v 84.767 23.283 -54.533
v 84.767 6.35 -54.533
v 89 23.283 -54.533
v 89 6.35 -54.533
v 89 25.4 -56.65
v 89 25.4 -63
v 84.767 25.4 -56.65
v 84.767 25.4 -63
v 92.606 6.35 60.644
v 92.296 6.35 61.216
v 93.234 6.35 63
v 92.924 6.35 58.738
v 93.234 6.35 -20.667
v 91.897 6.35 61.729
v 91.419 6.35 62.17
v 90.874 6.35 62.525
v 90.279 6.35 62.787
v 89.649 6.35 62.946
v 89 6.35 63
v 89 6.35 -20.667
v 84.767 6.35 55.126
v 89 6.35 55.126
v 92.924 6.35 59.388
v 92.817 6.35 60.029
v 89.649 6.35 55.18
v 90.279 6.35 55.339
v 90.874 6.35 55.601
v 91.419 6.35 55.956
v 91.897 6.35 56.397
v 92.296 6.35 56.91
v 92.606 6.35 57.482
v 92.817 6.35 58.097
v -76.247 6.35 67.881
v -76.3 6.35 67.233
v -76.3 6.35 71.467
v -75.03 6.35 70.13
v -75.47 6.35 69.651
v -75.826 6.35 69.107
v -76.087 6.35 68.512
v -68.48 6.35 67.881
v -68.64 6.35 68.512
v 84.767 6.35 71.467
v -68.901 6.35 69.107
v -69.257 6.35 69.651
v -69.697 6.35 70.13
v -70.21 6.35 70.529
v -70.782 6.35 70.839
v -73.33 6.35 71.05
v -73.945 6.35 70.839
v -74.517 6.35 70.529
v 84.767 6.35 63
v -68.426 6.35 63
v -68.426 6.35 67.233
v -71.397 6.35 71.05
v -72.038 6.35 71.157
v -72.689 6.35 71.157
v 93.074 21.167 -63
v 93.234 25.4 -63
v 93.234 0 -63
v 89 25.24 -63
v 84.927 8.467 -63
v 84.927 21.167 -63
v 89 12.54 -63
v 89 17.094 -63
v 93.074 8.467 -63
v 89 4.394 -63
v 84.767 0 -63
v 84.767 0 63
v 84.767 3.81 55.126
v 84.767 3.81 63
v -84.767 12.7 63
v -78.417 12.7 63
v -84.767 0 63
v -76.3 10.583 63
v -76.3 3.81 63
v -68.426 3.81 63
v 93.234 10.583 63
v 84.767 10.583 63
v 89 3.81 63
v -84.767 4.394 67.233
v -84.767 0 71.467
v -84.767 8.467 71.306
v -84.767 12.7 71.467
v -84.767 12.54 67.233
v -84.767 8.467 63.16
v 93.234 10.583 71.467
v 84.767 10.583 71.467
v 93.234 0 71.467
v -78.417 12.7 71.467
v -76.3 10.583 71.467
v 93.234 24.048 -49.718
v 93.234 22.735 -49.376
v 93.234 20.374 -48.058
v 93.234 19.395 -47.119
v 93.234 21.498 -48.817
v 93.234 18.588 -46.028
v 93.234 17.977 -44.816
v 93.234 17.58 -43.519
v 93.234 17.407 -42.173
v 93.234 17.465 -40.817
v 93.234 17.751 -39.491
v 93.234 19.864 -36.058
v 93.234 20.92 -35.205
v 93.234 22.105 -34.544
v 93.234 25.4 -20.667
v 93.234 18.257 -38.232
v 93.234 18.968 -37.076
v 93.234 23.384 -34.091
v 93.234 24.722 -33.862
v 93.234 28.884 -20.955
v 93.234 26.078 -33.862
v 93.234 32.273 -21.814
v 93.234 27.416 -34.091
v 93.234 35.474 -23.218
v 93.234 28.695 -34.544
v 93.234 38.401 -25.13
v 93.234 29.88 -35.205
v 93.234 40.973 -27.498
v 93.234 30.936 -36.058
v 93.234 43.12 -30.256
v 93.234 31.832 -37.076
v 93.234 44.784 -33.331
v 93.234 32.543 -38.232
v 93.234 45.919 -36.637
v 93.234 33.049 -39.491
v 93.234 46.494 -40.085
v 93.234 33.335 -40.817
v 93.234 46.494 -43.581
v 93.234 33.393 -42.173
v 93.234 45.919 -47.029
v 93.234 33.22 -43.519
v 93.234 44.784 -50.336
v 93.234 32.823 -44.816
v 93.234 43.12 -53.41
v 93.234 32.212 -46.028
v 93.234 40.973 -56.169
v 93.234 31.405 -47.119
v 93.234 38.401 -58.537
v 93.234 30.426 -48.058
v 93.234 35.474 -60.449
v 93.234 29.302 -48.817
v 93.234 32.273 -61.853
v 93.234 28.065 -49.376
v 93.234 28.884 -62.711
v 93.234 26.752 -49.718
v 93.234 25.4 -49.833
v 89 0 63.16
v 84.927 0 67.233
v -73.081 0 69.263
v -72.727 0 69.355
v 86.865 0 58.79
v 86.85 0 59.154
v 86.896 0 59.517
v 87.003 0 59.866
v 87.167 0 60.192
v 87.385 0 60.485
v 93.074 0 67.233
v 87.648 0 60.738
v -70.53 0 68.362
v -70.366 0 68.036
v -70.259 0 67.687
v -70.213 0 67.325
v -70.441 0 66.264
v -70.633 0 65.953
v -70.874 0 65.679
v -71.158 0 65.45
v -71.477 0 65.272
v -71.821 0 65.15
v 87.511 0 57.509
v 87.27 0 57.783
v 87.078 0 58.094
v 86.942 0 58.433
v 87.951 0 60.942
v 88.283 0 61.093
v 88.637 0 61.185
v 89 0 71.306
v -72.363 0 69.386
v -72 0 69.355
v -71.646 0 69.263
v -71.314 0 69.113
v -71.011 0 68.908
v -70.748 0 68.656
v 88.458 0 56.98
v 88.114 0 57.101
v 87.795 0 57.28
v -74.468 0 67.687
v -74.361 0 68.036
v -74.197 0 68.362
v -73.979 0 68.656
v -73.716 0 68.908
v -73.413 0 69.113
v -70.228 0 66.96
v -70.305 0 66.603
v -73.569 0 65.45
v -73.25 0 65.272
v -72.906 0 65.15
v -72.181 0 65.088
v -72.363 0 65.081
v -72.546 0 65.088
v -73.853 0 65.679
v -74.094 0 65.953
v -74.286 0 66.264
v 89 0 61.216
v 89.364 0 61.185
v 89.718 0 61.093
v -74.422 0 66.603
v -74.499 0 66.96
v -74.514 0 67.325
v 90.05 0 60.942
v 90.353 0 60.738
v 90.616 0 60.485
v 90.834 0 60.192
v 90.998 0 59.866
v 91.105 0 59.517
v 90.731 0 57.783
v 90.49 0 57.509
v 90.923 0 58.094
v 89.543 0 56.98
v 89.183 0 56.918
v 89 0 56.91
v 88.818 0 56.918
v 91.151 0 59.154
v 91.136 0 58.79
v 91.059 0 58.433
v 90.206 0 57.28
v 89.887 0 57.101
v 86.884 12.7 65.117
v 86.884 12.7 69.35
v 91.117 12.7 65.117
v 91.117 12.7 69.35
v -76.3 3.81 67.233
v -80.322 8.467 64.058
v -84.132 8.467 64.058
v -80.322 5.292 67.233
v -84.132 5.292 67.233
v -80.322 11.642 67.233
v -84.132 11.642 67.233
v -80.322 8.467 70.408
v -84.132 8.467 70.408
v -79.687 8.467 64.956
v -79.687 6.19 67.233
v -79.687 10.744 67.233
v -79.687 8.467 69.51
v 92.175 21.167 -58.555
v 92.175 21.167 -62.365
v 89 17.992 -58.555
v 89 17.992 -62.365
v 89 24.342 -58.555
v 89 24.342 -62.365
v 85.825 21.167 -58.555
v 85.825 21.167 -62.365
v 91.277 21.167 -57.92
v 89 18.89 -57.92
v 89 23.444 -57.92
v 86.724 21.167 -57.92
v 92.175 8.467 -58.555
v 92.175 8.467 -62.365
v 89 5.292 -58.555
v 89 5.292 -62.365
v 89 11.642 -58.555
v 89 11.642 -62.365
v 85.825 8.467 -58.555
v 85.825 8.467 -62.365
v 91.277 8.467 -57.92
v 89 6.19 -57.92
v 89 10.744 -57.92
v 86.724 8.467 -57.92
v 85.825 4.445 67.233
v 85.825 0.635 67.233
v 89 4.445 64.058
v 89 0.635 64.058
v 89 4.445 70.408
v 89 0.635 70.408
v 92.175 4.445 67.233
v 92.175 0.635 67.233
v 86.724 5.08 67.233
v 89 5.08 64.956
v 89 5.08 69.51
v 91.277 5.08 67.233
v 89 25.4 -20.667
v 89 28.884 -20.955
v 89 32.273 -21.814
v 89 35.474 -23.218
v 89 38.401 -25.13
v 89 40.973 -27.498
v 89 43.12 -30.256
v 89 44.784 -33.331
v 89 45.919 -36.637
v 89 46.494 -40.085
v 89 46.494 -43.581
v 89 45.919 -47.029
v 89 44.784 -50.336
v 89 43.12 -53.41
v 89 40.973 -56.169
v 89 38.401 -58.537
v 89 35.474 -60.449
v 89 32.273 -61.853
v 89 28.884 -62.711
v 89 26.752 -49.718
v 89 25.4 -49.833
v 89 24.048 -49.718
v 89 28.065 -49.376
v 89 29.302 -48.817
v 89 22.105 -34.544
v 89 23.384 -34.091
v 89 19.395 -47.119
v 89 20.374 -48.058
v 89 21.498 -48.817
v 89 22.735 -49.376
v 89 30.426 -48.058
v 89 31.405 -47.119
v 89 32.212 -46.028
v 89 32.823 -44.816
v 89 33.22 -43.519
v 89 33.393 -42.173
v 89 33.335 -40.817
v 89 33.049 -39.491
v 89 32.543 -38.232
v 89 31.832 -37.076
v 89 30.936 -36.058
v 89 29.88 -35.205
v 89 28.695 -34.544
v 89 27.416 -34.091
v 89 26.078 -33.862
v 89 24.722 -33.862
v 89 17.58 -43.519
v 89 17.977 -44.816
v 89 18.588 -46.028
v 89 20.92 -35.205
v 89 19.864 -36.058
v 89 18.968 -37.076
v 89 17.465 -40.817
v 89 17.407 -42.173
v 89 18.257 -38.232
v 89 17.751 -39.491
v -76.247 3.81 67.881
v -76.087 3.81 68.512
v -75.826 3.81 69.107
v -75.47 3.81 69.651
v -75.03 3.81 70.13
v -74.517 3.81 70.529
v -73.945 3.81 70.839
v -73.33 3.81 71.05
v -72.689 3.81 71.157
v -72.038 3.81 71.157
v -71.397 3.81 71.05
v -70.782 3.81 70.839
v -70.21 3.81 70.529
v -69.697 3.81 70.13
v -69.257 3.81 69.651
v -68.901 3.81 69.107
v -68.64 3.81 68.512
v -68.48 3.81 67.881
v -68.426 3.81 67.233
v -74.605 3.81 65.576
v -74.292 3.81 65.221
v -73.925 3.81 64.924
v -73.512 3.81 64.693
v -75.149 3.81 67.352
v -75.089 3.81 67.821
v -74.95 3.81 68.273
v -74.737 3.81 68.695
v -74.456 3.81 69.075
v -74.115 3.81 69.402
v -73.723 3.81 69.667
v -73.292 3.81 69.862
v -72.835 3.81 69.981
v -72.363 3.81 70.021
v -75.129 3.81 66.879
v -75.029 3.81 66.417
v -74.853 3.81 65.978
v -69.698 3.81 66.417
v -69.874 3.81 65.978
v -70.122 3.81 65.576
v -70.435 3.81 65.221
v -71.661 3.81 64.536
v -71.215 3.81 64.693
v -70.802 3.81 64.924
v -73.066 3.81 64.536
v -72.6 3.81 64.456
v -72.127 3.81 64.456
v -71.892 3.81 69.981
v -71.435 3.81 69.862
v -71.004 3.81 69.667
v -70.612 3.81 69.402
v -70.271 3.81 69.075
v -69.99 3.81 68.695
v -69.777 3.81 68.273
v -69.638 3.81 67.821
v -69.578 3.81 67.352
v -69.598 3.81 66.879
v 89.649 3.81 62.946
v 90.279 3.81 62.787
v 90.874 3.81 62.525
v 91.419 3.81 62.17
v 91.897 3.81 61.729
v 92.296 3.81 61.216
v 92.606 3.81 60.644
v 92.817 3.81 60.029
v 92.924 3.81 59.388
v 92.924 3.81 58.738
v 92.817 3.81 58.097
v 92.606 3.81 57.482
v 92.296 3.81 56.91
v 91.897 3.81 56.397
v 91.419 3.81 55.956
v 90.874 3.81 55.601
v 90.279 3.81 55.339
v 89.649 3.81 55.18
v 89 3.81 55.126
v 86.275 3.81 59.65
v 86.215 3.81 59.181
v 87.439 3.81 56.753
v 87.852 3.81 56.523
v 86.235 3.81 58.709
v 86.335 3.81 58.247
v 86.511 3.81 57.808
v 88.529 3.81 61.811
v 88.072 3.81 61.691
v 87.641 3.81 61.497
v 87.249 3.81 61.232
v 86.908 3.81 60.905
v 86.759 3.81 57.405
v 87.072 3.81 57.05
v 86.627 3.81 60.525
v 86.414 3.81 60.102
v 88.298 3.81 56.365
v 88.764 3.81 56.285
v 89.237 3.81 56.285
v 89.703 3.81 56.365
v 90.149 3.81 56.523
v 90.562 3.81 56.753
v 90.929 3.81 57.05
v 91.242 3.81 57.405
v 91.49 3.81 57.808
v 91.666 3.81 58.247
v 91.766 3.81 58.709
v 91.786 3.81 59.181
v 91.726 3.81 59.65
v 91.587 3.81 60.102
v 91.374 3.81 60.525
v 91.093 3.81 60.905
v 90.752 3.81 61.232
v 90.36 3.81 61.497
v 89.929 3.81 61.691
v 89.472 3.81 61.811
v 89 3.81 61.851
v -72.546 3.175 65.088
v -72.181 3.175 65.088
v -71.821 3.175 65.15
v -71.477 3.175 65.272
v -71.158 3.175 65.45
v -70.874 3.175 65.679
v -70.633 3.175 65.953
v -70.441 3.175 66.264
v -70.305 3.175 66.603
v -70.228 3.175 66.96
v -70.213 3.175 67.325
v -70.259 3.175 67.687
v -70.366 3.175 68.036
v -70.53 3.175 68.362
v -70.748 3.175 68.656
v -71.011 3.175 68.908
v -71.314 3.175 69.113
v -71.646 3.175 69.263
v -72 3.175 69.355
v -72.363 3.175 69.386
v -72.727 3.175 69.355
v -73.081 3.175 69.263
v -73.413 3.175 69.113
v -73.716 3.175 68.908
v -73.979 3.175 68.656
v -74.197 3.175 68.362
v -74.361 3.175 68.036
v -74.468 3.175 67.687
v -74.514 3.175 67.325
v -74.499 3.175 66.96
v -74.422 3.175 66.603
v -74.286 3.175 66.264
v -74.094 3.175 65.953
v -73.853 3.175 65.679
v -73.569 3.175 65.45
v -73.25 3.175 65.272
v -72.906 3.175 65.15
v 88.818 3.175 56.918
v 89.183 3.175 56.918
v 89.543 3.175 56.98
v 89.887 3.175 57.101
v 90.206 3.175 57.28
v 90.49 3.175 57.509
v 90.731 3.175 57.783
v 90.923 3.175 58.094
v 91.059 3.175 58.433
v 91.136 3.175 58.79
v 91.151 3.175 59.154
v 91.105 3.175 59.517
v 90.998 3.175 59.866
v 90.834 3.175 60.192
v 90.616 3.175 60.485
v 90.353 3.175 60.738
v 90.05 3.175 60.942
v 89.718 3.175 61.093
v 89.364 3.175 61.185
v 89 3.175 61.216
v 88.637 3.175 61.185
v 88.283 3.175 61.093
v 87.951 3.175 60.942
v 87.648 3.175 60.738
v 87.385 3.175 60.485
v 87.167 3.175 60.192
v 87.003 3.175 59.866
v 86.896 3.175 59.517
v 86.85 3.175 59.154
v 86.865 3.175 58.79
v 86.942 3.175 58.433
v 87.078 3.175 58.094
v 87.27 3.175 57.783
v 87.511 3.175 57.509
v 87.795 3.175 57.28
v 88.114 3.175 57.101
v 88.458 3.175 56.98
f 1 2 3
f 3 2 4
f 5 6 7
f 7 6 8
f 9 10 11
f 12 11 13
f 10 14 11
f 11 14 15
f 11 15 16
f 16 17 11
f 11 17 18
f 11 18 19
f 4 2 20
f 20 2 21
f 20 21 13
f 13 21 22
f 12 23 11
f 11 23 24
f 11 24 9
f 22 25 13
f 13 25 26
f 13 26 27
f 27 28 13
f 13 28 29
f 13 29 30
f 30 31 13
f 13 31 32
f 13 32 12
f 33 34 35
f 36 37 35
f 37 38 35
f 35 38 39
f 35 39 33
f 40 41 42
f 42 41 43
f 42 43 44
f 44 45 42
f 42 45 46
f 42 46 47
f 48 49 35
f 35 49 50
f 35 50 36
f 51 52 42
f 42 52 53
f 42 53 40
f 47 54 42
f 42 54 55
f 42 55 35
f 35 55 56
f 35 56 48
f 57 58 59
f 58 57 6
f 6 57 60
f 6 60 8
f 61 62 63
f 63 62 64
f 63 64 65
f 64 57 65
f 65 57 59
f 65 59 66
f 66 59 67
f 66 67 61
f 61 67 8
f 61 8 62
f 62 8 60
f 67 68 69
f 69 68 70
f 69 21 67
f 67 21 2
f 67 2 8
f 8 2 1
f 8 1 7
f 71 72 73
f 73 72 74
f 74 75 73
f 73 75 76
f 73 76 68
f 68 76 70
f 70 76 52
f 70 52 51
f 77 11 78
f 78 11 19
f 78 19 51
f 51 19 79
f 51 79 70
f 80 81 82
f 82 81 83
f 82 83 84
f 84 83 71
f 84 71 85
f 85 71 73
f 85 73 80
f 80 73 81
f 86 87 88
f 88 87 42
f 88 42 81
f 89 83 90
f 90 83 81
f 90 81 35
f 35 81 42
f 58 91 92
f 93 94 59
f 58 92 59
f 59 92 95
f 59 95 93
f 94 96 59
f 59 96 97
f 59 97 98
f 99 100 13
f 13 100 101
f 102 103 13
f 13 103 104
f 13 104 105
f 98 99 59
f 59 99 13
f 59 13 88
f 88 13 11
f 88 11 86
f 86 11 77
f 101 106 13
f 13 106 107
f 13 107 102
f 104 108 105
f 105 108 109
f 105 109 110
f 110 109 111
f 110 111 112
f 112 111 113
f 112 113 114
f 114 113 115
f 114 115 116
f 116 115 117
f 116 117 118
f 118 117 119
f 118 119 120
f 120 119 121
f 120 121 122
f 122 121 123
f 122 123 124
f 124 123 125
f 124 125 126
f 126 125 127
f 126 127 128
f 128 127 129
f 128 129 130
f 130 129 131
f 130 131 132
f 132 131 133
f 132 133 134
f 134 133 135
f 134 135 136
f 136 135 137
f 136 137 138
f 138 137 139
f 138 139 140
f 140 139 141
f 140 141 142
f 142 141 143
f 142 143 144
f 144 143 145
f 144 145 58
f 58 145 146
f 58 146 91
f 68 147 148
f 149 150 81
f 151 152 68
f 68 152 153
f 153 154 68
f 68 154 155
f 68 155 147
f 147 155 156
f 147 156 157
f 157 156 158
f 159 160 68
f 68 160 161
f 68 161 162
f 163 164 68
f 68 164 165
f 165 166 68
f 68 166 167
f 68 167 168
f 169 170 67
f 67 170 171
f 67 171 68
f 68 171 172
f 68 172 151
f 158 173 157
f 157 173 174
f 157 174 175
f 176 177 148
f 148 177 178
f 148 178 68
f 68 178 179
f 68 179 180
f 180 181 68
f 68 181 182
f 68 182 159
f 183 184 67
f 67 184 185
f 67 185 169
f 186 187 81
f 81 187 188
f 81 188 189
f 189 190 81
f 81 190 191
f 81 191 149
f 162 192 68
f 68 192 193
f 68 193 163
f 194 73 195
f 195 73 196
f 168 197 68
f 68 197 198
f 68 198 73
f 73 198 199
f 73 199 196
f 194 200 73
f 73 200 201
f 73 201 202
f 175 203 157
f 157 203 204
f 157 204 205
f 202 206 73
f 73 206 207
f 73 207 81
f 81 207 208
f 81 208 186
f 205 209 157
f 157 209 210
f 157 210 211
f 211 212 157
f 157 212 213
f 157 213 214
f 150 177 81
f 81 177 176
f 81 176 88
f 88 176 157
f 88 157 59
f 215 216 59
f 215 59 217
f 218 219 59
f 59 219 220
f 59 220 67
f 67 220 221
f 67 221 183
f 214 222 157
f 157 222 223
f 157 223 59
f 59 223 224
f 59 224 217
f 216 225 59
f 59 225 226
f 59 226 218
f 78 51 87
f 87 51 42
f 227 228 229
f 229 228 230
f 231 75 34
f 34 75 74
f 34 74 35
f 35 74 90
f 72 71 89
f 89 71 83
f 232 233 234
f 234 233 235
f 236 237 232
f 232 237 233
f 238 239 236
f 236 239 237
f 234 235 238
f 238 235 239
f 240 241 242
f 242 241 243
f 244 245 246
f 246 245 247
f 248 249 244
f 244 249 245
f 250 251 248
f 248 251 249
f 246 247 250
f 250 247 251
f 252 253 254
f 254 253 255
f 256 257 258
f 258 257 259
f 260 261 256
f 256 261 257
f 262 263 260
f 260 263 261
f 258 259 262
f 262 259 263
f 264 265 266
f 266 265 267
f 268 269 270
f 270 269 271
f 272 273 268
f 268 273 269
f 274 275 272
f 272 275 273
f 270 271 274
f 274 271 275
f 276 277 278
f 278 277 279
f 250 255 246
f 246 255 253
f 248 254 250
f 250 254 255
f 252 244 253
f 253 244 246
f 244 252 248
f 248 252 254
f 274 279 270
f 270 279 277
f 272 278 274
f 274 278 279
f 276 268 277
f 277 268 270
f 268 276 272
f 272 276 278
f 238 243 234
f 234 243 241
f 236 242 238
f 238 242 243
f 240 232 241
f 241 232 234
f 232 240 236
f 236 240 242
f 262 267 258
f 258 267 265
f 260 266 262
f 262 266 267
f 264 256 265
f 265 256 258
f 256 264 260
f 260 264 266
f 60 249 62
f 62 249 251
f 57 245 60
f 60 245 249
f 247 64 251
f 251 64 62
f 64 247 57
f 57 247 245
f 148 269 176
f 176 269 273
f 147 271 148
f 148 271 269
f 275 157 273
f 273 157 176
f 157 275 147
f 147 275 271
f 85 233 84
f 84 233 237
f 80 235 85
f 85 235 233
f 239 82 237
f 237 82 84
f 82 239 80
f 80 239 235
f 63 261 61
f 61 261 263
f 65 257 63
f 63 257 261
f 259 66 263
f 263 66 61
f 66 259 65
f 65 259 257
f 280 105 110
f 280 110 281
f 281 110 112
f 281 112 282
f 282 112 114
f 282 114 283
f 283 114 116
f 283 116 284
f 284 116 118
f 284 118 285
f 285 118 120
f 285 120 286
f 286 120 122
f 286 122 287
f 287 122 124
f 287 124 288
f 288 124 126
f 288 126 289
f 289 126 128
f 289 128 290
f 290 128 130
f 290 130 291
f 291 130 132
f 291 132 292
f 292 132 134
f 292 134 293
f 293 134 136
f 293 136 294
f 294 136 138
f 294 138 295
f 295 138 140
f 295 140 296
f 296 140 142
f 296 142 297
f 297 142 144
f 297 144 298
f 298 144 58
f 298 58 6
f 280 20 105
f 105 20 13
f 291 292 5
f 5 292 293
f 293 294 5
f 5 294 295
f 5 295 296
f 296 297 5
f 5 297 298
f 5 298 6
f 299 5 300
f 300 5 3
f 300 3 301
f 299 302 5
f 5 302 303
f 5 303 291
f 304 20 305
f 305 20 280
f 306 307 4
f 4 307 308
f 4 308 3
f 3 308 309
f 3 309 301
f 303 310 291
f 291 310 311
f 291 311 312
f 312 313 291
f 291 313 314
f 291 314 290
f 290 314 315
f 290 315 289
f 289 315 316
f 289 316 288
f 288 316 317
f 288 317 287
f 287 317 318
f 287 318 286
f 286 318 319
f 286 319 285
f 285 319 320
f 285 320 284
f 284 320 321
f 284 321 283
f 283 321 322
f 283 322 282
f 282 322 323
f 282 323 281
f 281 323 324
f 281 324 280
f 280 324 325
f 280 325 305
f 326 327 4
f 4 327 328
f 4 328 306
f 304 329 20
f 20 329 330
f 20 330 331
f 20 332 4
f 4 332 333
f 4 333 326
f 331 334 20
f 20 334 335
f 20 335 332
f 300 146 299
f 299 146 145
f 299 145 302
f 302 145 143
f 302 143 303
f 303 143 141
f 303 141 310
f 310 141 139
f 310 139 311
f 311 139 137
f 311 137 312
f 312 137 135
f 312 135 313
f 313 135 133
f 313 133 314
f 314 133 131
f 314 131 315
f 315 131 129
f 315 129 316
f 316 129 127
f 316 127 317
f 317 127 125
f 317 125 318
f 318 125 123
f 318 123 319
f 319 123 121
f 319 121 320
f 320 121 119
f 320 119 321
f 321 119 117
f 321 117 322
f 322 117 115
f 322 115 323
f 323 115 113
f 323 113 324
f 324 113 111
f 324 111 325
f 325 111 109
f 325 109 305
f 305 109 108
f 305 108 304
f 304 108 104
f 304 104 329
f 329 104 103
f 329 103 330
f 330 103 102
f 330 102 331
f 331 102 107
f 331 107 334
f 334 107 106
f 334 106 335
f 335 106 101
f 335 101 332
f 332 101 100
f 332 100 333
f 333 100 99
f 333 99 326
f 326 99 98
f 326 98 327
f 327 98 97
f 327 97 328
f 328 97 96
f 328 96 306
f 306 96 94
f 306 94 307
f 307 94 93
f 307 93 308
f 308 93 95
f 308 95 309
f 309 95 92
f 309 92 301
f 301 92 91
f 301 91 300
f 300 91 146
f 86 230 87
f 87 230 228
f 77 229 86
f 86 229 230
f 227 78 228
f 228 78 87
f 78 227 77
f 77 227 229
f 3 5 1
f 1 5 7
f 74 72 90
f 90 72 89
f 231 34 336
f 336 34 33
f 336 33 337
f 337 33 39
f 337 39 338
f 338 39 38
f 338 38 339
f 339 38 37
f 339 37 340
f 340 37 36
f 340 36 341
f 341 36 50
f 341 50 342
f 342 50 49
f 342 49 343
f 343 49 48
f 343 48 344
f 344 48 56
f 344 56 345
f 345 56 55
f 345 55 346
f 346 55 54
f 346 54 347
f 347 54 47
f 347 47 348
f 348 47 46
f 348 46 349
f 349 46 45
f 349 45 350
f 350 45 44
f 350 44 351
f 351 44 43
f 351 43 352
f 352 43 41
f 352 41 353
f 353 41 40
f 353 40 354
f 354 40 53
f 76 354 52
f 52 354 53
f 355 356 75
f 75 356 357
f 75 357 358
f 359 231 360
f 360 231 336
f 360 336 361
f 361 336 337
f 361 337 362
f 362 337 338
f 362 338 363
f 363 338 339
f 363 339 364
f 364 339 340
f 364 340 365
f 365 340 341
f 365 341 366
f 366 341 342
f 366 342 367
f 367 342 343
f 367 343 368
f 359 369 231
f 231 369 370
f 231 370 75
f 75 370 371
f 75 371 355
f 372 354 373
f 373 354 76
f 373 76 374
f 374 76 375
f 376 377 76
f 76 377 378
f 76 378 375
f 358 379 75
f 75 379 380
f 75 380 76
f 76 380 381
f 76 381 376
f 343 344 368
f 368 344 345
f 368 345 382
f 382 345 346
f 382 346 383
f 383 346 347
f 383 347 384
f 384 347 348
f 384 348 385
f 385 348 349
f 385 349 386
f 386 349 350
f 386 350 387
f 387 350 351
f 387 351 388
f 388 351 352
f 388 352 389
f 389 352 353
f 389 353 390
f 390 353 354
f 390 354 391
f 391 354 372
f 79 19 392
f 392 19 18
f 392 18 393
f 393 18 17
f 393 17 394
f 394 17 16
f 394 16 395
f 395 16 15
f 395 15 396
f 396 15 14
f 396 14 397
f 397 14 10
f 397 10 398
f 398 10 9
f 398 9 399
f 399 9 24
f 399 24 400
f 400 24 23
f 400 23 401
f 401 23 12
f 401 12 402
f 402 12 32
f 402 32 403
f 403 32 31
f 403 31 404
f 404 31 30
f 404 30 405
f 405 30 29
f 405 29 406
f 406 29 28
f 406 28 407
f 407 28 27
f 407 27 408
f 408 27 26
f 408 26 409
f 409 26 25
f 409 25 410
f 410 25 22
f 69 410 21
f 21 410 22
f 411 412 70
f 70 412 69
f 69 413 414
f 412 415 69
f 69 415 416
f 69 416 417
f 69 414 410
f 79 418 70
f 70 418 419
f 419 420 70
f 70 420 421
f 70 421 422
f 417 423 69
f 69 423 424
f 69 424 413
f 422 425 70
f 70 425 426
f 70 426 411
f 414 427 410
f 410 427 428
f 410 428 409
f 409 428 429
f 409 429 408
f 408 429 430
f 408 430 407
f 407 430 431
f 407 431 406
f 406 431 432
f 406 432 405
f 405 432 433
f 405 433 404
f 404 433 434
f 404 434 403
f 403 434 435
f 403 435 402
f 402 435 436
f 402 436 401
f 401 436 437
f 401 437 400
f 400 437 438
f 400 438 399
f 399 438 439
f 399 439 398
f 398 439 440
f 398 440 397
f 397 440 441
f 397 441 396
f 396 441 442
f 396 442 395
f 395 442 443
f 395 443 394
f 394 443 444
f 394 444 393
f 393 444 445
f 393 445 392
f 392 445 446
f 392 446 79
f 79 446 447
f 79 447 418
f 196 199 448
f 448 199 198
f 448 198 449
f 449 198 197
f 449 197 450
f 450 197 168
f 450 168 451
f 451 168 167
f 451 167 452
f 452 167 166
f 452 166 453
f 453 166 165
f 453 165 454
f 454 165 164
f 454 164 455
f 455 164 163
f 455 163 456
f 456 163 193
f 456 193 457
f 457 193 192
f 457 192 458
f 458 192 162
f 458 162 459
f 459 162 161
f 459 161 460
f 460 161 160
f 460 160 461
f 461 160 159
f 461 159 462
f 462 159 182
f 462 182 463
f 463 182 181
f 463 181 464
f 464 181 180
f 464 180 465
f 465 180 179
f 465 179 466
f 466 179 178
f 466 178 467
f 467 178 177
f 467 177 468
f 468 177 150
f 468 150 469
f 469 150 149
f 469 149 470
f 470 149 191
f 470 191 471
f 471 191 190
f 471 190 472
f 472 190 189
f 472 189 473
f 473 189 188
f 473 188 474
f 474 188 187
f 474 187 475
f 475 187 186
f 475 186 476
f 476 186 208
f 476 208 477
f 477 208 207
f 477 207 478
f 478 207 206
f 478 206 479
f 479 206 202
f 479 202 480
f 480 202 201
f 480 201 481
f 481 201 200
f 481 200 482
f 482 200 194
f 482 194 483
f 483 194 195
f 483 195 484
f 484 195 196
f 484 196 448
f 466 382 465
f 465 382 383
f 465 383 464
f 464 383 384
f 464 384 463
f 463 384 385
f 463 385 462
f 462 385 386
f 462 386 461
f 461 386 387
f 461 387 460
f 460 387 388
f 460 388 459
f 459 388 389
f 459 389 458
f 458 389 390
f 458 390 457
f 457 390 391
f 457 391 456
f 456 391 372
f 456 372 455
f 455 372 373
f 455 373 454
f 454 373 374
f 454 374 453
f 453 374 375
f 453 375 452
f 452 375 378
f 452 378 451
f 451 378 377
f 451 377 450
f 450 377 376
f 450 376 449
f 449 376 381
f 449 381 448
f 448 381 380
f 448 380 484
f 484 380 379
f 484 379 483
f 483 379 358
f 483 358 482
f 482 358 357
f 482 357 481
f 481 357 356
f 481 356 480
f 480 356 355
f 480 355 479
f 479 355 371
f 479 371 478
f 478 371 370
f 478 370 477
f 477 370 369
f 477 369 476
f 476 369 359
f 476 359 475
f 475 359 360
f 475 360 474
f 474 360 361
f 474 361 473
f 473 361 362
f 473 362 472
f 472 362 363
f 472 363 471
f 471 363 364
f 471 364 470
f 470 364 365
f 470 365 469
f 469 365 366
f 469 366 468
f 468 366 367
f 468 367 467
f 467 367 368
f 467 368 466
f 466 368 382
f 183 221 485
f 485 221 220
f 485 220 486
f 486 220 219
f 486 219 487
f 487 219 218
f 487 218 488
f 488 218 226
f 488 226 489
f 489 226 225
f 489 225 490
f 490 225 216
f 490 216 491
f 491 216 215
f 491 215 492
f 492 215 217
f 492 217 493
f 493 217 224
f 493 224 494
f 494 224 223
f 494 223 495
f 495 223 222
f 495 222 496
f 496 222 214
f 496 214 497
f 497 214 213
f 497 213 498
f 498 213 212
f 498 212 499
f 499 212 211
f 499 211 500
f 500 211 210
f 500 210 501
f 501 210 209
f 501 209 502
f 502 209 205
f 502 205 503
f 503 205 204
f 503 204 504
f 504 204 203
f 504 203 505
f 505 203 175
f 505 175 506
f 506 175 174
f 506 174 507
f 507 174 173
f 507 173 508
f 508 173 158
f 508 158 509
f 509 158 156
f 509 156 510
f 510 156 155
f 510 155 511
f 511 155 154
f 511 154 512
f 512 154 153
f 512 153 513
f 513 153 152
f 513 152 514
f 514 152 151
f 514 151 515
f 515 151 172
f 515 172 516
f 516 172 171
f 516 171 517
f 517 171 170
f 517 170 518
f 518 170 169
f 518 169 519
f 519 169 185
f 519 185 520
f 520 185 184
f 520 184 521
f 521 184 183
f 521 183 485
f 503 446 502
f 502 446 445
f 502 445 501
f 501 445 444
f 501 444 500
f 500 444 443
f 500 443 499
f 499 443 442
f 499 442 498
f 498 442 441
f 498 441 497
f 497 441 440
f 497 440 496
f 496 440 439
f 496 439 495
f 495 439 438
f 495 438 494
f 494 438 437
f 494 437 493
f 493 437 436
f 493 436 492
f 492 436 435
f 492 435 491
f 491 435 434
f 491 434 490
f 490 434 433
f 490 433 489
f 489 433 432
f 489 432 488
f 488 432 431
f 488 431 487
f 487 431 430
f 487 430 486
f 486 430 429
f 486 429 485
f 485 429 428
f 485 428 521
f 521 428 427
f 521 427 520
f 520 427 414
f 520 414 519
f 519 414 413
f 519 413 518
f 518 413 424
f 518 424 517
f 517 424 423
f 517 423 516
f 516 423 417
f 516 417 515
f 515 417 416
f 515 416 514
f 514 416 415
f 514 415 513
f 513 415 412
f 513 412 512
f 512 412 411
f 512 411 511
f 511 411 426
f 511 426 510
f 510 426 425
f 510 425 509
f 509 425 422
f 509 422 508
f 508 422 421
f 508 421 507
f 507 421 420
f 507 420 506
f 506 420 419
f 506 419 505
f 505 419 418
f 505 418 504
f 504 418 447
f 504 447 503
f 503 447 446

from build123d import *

# Parameters (mm, degrees)
BOSS_EXTRUDE1_DEPTH                    = 6.35
SKETCH3_W                              = 8.466666667
SKETCH3_H                              = 8.466666667
SKETCH3_W_2                            = 8.466666666
BOSS_EXTRUDE2_DEPTH                    = 6.349999915
SKETCH8_W                              = 8.466666666
SKETCH8_H                              = 8.466666666
BOSS_EXTRUDE4_DEPTH                    = 19.049999915
CUT_EXTRUDE1_DEPTH                     = 5.08
CUT_EXTRUDE2_DEPTH                     = 5.08
CUT_EXTRUDE3_DEPTH                     = 5.08
CHAMFER1_SIZE                          = 0.635
SKETCH7_R                              = 8
BOSS_EXTRUDE3_DEPTH                    = 4.233333333
CHAMFER2_SIZE                          = 2.116666709
CUT_EXTRUDE5_DEPTH                     = 2.54
F_18_0_1695_DIAMETER_HOLE1_D           = 4.3053
F_18_0_1695_DIAMETER_HOLE1_DEPTH       = 4.572
F_18_0_1695_DIAMETER_HOLE1_CSINK_D     = 5.5753
F_18_0_1695_DIAMETER_HOLE1_CSINK_ANGLE = 90
F_18_0_1695_DIAMETER_HOLE1_TIP         = 1.293442612


with BuildPart() as part:
    # Sketch2 → Boss-Extrude1 (new body)
    with BuildSketch(Plane(origin=(0, 0, 0), x_dir=(1, 0, 0), z_dir=(0, 1, 0))):
        Polygon((93.233827842, 63.000000026), (93.233827842, -71.466666693), (-84.767161176, -71.466666693), (-84.767161176, -63.000000026), (84.767161176, -63.000000026), (84.767161176, 63.000000026), align=None)
    extrude(amount=BOSS_EXTRUDE1_DEPTH)

    # Sketch3 → Boss-Extrude2 (add)
    with BuildSketch(Plane(origin=(0, 6.35, 0), x_dir=(1, 0, 0), z_dir=(0, 1, 0))):
        with Locations((-80.533827843, -67.23333336)):
            Rectangle(SKETCH3_W, SKETCH3_H)
        with Locations((89.000494509, -67.23333336)):
            Rectangle(SKETCH3_W_2, SKETCH3_H)
    extrude(amount=BOSS_EXTRUDE2_DEPTH)

    # Sketch8 → Boss-Extrude4 (add)
    with BuildSketch(Plane(origin=(0, 6.35, 0), x_dir=(1, 0, 0), z_dir=(0, 1, 0))):
        with Locations((89.000494509, 58.766666693)):
            Rectangle(SKETCH8_W, SKETCH8_H)
    extrude(amount=BOSS_EXTRUDE4_DEPTH)

    # Sketch4 → Cut-Extrude1 (cut)
    with BuildSketch(Plane.ZY.offset(84.767161176)):
        Polygon((64.05833336, 8.466666667), (67.23333336, 11.641666667), (70.40833336, 8.466666667), (67.23333336, 5.291666667), align=None)
    extrude(amount=-CUT_EXTRUDE1_DEPTH, mode=Mode.SUBTRACT)

    # Sketch5 → Cut-Extrude2 (cut)
    with BuildSketch(Plane(origin=(0, 0, -63.000000026), x_dir=(-1, 0, 0), z_dir=(0, 0, -1))):
        Polygon((-92.175494509, 8.466666667), (-89.000494509, 11.641666667), (-85.825494509, 8.466666667), (-89.000494509, 5.291666667), align=None)
        Polygon((-92.175494509, 21.166666582), (-89.000494509, 24.341666582), (-85.825494509, 21.166666582), (-89.000494509, 17.991666582), align=None)
    extrude(amount=-CUT_EXTRUDE2_DEPTH, mode=Mode.SUBTRACT)

    # Sketch6 → Cut-Extrude3 (cut)
    with BuildSketch(Plane.XZ):
        Polygon((85.825494509, 67.23333336), (89.000494509, 70.40833336), (92.175494509, 67.23333336), (89.000494509, 64.05833336), align=None)
    extrude(amount=-CUT_EXTRUDE3_DEPTH, mode=Mode.SUBTRACT)

    # Chamfer1
    chamfer1_edges = [part.edges().sort_by_distance(p)[0] for p in [
        (87.412994509, 5.08, 65.64583336),
        (87.412994509, 5.08, 68.82083336),
        (90.587994509, 5.08, 68.82083336),
        (90.587994509, 5.08, 65.64583336),
        (87.412994509, 0, 65.64583336),
        (90.587994509, 0, 65.64583336),
        (90.587994509, 0, 68.82083336),
        (87.412994509, 0, 68.82083336),
        (-79.687161176, 6.879166667, 65.64583336),
        (-79.687161176, 10.054166667, 65.64583336),
        (-79.687161176, 10.054166667, 68.82083336),
        (-79.687161176, 6.879166667, 68.82083336),
        (-84.767161176, 6.879166667, 65.64583336),
        (-84.767161176, 6.879166667, 68.82083336),
        (-84.767161176, 10.054166667, 68.82083336),
        (-84.767161176, 10.054166667, 65.64583336),
        (90.587994509, 6.879166667, -57.920000026),
        (90.587994509, 10.054166667, -57.920000026),
        (87.412994509, 10.054166667, -57.920000026),
        (87.412994509, 6.879166667, -57.920000026),
        (90.587994509, 6.879166667, -63.000000026),
        (87.412994509, 6.879166667, -63.000000026),
        (87.412994509, 10.054166667, -63.000000026),
        (90.587994509, 10.054166667, -63.000000026),
        (90.587994509, 19.579166582, -57.920000026),
        (90.587994509, 22.754166582, -57.920000026),
        (87.412994509, 22.754166582, -57.920000026),
        (87.412994509, 19.579166582, -57.920000026),
        (90.587994509, 19.579166582, -63.000000026),
        (87.412994509, 19.579166582, -63.000000026),
        (87.412994509, 22.754166582, -63.000000026),
        (90.587994509, 22.754166582, -63.000000026),
    ]]
    chamfer(chamfer1_edges, length=CHAMFER1_SIZE)

    # Sketch7 → Boss-Extrude3 (add)
    with BuildSketch(Plane(origin=(93.233827842, 0, 0), x_dir=(0, 0, -1), z_dir=(1, 0, 0))):
        with BuildLine():
            Line((20.666666693, 25.399999915), (20.666666693, 6.35))
            Line((20.666666693, 6.35), (54.53333336, 6.35))
            Line((54.53333336, 6.35), (54.53333336, 25.399999915))
            Line((54.53333336, 25.399999915), (63.000000026, 25.399999915))
            ThreePointArc((63.000000026, 25.399999915), (41.83333336, 46.566666582), (20.666666693, 25.399999915))
        make_face()
        with Locations((41.83333336, 25.399999915)):
            Circle(SKETCH7_R, mode=Mode.SUBTRACT)
    extrude(amount=-BOSS_EXTRUDE3_DEPTH)

    # Chamfer2
    chamfer2_edges = [part.edges().sort_by_distance(p)[0] for p in [
        (-76.300494509, 12.699999915, 67.23333336),
        (86.883827842, 25.399999915, -54.53333336),
        (89.000494509, 12.699999915, 63.000000026),
        (93.233827842, 12.699999915, 67.23333336),
        (89.000494509, 12.699999915, 71.466666693),
        (84.767161176, 12.699999915, 67.23333336),
    ]]
    chamfer(chamfer2_edges, length=CHAMFER2_SIZE)

    # Sketch9 → Cut-Extrude5 (cut)
    with BuildSketch(Plane(origin=(0, 6.35, 0), x_dir=(1, 0, 0), z_dir=(0, 1, 0))):
        with BuildLine():
            Line((-76.300494509, -67.233333526), (-76.300494509, -63.000000026))
            Line((-76.300494509, -63.000000026), (-68.426494509, -63.000000026))
            Line((-68.426494509, -63.000000026), (-68.426494509, -67.233333526))
            ThreePointArc((-68.426494509, -67.233333526), (-72.363494509, -71.170333526), (-76.300494509, -67.233333526))
        make_face()
        with BuildLine():
            Line((89.000494676, -55.126000026), (84.767161176, -55.126000026))
            Line((84.767161176, -55.126000026), (84.767161176, -63.000000026))
            Line((84.767161176, -63.000000026), (89.000494676, -63.000000026))
            ThreePointArc((89.000494676, -63.000000026), (92.937494676, -59.063000026), (89.000494676, -55.126000026))
        make_face()
    extrude(amount=-CUT_EXTRUDE5_DEPTH, mode=Mode.SUBTRACT)

    # #18 (0.1695) Diameter Hole1
    with Locations(Plane(origin=(0, 3.81, 0), x_dir=(1, 0, 0), z_dir=(0, 1, 0))):
        with Locations((89.000494676, -59.063000026), (-72.363494509, -67.233333526)):
            CounterSinkHole(F_18_0_1695_DIAMETER_HOLE1_D / 2, F_18_0_1695_DIAMETER_HOLE1_CSINK_D / 2, depth=F_18_0_1695_DIAMETER_HOLE1_DEPTH, counter_sink_angle=F_18_0_1695_DIAMETER_HOLE1_CSINK_ANGLE)
            with Locations((0, 0, -(F_18_0_1695_DIAMETER_HOLE1_DEPTH + F_18_0_1695_DIAMETER_HOLE1_TIP / 2))):  # 118° drill point
                Cone(0, F_18_0_1695_DIAMETER_HOLE1_D / 2, F_18_0_1695_DIAMETER_HOLE1_TIP, mode=Mode.SUBTRACT)


solid = part.part
